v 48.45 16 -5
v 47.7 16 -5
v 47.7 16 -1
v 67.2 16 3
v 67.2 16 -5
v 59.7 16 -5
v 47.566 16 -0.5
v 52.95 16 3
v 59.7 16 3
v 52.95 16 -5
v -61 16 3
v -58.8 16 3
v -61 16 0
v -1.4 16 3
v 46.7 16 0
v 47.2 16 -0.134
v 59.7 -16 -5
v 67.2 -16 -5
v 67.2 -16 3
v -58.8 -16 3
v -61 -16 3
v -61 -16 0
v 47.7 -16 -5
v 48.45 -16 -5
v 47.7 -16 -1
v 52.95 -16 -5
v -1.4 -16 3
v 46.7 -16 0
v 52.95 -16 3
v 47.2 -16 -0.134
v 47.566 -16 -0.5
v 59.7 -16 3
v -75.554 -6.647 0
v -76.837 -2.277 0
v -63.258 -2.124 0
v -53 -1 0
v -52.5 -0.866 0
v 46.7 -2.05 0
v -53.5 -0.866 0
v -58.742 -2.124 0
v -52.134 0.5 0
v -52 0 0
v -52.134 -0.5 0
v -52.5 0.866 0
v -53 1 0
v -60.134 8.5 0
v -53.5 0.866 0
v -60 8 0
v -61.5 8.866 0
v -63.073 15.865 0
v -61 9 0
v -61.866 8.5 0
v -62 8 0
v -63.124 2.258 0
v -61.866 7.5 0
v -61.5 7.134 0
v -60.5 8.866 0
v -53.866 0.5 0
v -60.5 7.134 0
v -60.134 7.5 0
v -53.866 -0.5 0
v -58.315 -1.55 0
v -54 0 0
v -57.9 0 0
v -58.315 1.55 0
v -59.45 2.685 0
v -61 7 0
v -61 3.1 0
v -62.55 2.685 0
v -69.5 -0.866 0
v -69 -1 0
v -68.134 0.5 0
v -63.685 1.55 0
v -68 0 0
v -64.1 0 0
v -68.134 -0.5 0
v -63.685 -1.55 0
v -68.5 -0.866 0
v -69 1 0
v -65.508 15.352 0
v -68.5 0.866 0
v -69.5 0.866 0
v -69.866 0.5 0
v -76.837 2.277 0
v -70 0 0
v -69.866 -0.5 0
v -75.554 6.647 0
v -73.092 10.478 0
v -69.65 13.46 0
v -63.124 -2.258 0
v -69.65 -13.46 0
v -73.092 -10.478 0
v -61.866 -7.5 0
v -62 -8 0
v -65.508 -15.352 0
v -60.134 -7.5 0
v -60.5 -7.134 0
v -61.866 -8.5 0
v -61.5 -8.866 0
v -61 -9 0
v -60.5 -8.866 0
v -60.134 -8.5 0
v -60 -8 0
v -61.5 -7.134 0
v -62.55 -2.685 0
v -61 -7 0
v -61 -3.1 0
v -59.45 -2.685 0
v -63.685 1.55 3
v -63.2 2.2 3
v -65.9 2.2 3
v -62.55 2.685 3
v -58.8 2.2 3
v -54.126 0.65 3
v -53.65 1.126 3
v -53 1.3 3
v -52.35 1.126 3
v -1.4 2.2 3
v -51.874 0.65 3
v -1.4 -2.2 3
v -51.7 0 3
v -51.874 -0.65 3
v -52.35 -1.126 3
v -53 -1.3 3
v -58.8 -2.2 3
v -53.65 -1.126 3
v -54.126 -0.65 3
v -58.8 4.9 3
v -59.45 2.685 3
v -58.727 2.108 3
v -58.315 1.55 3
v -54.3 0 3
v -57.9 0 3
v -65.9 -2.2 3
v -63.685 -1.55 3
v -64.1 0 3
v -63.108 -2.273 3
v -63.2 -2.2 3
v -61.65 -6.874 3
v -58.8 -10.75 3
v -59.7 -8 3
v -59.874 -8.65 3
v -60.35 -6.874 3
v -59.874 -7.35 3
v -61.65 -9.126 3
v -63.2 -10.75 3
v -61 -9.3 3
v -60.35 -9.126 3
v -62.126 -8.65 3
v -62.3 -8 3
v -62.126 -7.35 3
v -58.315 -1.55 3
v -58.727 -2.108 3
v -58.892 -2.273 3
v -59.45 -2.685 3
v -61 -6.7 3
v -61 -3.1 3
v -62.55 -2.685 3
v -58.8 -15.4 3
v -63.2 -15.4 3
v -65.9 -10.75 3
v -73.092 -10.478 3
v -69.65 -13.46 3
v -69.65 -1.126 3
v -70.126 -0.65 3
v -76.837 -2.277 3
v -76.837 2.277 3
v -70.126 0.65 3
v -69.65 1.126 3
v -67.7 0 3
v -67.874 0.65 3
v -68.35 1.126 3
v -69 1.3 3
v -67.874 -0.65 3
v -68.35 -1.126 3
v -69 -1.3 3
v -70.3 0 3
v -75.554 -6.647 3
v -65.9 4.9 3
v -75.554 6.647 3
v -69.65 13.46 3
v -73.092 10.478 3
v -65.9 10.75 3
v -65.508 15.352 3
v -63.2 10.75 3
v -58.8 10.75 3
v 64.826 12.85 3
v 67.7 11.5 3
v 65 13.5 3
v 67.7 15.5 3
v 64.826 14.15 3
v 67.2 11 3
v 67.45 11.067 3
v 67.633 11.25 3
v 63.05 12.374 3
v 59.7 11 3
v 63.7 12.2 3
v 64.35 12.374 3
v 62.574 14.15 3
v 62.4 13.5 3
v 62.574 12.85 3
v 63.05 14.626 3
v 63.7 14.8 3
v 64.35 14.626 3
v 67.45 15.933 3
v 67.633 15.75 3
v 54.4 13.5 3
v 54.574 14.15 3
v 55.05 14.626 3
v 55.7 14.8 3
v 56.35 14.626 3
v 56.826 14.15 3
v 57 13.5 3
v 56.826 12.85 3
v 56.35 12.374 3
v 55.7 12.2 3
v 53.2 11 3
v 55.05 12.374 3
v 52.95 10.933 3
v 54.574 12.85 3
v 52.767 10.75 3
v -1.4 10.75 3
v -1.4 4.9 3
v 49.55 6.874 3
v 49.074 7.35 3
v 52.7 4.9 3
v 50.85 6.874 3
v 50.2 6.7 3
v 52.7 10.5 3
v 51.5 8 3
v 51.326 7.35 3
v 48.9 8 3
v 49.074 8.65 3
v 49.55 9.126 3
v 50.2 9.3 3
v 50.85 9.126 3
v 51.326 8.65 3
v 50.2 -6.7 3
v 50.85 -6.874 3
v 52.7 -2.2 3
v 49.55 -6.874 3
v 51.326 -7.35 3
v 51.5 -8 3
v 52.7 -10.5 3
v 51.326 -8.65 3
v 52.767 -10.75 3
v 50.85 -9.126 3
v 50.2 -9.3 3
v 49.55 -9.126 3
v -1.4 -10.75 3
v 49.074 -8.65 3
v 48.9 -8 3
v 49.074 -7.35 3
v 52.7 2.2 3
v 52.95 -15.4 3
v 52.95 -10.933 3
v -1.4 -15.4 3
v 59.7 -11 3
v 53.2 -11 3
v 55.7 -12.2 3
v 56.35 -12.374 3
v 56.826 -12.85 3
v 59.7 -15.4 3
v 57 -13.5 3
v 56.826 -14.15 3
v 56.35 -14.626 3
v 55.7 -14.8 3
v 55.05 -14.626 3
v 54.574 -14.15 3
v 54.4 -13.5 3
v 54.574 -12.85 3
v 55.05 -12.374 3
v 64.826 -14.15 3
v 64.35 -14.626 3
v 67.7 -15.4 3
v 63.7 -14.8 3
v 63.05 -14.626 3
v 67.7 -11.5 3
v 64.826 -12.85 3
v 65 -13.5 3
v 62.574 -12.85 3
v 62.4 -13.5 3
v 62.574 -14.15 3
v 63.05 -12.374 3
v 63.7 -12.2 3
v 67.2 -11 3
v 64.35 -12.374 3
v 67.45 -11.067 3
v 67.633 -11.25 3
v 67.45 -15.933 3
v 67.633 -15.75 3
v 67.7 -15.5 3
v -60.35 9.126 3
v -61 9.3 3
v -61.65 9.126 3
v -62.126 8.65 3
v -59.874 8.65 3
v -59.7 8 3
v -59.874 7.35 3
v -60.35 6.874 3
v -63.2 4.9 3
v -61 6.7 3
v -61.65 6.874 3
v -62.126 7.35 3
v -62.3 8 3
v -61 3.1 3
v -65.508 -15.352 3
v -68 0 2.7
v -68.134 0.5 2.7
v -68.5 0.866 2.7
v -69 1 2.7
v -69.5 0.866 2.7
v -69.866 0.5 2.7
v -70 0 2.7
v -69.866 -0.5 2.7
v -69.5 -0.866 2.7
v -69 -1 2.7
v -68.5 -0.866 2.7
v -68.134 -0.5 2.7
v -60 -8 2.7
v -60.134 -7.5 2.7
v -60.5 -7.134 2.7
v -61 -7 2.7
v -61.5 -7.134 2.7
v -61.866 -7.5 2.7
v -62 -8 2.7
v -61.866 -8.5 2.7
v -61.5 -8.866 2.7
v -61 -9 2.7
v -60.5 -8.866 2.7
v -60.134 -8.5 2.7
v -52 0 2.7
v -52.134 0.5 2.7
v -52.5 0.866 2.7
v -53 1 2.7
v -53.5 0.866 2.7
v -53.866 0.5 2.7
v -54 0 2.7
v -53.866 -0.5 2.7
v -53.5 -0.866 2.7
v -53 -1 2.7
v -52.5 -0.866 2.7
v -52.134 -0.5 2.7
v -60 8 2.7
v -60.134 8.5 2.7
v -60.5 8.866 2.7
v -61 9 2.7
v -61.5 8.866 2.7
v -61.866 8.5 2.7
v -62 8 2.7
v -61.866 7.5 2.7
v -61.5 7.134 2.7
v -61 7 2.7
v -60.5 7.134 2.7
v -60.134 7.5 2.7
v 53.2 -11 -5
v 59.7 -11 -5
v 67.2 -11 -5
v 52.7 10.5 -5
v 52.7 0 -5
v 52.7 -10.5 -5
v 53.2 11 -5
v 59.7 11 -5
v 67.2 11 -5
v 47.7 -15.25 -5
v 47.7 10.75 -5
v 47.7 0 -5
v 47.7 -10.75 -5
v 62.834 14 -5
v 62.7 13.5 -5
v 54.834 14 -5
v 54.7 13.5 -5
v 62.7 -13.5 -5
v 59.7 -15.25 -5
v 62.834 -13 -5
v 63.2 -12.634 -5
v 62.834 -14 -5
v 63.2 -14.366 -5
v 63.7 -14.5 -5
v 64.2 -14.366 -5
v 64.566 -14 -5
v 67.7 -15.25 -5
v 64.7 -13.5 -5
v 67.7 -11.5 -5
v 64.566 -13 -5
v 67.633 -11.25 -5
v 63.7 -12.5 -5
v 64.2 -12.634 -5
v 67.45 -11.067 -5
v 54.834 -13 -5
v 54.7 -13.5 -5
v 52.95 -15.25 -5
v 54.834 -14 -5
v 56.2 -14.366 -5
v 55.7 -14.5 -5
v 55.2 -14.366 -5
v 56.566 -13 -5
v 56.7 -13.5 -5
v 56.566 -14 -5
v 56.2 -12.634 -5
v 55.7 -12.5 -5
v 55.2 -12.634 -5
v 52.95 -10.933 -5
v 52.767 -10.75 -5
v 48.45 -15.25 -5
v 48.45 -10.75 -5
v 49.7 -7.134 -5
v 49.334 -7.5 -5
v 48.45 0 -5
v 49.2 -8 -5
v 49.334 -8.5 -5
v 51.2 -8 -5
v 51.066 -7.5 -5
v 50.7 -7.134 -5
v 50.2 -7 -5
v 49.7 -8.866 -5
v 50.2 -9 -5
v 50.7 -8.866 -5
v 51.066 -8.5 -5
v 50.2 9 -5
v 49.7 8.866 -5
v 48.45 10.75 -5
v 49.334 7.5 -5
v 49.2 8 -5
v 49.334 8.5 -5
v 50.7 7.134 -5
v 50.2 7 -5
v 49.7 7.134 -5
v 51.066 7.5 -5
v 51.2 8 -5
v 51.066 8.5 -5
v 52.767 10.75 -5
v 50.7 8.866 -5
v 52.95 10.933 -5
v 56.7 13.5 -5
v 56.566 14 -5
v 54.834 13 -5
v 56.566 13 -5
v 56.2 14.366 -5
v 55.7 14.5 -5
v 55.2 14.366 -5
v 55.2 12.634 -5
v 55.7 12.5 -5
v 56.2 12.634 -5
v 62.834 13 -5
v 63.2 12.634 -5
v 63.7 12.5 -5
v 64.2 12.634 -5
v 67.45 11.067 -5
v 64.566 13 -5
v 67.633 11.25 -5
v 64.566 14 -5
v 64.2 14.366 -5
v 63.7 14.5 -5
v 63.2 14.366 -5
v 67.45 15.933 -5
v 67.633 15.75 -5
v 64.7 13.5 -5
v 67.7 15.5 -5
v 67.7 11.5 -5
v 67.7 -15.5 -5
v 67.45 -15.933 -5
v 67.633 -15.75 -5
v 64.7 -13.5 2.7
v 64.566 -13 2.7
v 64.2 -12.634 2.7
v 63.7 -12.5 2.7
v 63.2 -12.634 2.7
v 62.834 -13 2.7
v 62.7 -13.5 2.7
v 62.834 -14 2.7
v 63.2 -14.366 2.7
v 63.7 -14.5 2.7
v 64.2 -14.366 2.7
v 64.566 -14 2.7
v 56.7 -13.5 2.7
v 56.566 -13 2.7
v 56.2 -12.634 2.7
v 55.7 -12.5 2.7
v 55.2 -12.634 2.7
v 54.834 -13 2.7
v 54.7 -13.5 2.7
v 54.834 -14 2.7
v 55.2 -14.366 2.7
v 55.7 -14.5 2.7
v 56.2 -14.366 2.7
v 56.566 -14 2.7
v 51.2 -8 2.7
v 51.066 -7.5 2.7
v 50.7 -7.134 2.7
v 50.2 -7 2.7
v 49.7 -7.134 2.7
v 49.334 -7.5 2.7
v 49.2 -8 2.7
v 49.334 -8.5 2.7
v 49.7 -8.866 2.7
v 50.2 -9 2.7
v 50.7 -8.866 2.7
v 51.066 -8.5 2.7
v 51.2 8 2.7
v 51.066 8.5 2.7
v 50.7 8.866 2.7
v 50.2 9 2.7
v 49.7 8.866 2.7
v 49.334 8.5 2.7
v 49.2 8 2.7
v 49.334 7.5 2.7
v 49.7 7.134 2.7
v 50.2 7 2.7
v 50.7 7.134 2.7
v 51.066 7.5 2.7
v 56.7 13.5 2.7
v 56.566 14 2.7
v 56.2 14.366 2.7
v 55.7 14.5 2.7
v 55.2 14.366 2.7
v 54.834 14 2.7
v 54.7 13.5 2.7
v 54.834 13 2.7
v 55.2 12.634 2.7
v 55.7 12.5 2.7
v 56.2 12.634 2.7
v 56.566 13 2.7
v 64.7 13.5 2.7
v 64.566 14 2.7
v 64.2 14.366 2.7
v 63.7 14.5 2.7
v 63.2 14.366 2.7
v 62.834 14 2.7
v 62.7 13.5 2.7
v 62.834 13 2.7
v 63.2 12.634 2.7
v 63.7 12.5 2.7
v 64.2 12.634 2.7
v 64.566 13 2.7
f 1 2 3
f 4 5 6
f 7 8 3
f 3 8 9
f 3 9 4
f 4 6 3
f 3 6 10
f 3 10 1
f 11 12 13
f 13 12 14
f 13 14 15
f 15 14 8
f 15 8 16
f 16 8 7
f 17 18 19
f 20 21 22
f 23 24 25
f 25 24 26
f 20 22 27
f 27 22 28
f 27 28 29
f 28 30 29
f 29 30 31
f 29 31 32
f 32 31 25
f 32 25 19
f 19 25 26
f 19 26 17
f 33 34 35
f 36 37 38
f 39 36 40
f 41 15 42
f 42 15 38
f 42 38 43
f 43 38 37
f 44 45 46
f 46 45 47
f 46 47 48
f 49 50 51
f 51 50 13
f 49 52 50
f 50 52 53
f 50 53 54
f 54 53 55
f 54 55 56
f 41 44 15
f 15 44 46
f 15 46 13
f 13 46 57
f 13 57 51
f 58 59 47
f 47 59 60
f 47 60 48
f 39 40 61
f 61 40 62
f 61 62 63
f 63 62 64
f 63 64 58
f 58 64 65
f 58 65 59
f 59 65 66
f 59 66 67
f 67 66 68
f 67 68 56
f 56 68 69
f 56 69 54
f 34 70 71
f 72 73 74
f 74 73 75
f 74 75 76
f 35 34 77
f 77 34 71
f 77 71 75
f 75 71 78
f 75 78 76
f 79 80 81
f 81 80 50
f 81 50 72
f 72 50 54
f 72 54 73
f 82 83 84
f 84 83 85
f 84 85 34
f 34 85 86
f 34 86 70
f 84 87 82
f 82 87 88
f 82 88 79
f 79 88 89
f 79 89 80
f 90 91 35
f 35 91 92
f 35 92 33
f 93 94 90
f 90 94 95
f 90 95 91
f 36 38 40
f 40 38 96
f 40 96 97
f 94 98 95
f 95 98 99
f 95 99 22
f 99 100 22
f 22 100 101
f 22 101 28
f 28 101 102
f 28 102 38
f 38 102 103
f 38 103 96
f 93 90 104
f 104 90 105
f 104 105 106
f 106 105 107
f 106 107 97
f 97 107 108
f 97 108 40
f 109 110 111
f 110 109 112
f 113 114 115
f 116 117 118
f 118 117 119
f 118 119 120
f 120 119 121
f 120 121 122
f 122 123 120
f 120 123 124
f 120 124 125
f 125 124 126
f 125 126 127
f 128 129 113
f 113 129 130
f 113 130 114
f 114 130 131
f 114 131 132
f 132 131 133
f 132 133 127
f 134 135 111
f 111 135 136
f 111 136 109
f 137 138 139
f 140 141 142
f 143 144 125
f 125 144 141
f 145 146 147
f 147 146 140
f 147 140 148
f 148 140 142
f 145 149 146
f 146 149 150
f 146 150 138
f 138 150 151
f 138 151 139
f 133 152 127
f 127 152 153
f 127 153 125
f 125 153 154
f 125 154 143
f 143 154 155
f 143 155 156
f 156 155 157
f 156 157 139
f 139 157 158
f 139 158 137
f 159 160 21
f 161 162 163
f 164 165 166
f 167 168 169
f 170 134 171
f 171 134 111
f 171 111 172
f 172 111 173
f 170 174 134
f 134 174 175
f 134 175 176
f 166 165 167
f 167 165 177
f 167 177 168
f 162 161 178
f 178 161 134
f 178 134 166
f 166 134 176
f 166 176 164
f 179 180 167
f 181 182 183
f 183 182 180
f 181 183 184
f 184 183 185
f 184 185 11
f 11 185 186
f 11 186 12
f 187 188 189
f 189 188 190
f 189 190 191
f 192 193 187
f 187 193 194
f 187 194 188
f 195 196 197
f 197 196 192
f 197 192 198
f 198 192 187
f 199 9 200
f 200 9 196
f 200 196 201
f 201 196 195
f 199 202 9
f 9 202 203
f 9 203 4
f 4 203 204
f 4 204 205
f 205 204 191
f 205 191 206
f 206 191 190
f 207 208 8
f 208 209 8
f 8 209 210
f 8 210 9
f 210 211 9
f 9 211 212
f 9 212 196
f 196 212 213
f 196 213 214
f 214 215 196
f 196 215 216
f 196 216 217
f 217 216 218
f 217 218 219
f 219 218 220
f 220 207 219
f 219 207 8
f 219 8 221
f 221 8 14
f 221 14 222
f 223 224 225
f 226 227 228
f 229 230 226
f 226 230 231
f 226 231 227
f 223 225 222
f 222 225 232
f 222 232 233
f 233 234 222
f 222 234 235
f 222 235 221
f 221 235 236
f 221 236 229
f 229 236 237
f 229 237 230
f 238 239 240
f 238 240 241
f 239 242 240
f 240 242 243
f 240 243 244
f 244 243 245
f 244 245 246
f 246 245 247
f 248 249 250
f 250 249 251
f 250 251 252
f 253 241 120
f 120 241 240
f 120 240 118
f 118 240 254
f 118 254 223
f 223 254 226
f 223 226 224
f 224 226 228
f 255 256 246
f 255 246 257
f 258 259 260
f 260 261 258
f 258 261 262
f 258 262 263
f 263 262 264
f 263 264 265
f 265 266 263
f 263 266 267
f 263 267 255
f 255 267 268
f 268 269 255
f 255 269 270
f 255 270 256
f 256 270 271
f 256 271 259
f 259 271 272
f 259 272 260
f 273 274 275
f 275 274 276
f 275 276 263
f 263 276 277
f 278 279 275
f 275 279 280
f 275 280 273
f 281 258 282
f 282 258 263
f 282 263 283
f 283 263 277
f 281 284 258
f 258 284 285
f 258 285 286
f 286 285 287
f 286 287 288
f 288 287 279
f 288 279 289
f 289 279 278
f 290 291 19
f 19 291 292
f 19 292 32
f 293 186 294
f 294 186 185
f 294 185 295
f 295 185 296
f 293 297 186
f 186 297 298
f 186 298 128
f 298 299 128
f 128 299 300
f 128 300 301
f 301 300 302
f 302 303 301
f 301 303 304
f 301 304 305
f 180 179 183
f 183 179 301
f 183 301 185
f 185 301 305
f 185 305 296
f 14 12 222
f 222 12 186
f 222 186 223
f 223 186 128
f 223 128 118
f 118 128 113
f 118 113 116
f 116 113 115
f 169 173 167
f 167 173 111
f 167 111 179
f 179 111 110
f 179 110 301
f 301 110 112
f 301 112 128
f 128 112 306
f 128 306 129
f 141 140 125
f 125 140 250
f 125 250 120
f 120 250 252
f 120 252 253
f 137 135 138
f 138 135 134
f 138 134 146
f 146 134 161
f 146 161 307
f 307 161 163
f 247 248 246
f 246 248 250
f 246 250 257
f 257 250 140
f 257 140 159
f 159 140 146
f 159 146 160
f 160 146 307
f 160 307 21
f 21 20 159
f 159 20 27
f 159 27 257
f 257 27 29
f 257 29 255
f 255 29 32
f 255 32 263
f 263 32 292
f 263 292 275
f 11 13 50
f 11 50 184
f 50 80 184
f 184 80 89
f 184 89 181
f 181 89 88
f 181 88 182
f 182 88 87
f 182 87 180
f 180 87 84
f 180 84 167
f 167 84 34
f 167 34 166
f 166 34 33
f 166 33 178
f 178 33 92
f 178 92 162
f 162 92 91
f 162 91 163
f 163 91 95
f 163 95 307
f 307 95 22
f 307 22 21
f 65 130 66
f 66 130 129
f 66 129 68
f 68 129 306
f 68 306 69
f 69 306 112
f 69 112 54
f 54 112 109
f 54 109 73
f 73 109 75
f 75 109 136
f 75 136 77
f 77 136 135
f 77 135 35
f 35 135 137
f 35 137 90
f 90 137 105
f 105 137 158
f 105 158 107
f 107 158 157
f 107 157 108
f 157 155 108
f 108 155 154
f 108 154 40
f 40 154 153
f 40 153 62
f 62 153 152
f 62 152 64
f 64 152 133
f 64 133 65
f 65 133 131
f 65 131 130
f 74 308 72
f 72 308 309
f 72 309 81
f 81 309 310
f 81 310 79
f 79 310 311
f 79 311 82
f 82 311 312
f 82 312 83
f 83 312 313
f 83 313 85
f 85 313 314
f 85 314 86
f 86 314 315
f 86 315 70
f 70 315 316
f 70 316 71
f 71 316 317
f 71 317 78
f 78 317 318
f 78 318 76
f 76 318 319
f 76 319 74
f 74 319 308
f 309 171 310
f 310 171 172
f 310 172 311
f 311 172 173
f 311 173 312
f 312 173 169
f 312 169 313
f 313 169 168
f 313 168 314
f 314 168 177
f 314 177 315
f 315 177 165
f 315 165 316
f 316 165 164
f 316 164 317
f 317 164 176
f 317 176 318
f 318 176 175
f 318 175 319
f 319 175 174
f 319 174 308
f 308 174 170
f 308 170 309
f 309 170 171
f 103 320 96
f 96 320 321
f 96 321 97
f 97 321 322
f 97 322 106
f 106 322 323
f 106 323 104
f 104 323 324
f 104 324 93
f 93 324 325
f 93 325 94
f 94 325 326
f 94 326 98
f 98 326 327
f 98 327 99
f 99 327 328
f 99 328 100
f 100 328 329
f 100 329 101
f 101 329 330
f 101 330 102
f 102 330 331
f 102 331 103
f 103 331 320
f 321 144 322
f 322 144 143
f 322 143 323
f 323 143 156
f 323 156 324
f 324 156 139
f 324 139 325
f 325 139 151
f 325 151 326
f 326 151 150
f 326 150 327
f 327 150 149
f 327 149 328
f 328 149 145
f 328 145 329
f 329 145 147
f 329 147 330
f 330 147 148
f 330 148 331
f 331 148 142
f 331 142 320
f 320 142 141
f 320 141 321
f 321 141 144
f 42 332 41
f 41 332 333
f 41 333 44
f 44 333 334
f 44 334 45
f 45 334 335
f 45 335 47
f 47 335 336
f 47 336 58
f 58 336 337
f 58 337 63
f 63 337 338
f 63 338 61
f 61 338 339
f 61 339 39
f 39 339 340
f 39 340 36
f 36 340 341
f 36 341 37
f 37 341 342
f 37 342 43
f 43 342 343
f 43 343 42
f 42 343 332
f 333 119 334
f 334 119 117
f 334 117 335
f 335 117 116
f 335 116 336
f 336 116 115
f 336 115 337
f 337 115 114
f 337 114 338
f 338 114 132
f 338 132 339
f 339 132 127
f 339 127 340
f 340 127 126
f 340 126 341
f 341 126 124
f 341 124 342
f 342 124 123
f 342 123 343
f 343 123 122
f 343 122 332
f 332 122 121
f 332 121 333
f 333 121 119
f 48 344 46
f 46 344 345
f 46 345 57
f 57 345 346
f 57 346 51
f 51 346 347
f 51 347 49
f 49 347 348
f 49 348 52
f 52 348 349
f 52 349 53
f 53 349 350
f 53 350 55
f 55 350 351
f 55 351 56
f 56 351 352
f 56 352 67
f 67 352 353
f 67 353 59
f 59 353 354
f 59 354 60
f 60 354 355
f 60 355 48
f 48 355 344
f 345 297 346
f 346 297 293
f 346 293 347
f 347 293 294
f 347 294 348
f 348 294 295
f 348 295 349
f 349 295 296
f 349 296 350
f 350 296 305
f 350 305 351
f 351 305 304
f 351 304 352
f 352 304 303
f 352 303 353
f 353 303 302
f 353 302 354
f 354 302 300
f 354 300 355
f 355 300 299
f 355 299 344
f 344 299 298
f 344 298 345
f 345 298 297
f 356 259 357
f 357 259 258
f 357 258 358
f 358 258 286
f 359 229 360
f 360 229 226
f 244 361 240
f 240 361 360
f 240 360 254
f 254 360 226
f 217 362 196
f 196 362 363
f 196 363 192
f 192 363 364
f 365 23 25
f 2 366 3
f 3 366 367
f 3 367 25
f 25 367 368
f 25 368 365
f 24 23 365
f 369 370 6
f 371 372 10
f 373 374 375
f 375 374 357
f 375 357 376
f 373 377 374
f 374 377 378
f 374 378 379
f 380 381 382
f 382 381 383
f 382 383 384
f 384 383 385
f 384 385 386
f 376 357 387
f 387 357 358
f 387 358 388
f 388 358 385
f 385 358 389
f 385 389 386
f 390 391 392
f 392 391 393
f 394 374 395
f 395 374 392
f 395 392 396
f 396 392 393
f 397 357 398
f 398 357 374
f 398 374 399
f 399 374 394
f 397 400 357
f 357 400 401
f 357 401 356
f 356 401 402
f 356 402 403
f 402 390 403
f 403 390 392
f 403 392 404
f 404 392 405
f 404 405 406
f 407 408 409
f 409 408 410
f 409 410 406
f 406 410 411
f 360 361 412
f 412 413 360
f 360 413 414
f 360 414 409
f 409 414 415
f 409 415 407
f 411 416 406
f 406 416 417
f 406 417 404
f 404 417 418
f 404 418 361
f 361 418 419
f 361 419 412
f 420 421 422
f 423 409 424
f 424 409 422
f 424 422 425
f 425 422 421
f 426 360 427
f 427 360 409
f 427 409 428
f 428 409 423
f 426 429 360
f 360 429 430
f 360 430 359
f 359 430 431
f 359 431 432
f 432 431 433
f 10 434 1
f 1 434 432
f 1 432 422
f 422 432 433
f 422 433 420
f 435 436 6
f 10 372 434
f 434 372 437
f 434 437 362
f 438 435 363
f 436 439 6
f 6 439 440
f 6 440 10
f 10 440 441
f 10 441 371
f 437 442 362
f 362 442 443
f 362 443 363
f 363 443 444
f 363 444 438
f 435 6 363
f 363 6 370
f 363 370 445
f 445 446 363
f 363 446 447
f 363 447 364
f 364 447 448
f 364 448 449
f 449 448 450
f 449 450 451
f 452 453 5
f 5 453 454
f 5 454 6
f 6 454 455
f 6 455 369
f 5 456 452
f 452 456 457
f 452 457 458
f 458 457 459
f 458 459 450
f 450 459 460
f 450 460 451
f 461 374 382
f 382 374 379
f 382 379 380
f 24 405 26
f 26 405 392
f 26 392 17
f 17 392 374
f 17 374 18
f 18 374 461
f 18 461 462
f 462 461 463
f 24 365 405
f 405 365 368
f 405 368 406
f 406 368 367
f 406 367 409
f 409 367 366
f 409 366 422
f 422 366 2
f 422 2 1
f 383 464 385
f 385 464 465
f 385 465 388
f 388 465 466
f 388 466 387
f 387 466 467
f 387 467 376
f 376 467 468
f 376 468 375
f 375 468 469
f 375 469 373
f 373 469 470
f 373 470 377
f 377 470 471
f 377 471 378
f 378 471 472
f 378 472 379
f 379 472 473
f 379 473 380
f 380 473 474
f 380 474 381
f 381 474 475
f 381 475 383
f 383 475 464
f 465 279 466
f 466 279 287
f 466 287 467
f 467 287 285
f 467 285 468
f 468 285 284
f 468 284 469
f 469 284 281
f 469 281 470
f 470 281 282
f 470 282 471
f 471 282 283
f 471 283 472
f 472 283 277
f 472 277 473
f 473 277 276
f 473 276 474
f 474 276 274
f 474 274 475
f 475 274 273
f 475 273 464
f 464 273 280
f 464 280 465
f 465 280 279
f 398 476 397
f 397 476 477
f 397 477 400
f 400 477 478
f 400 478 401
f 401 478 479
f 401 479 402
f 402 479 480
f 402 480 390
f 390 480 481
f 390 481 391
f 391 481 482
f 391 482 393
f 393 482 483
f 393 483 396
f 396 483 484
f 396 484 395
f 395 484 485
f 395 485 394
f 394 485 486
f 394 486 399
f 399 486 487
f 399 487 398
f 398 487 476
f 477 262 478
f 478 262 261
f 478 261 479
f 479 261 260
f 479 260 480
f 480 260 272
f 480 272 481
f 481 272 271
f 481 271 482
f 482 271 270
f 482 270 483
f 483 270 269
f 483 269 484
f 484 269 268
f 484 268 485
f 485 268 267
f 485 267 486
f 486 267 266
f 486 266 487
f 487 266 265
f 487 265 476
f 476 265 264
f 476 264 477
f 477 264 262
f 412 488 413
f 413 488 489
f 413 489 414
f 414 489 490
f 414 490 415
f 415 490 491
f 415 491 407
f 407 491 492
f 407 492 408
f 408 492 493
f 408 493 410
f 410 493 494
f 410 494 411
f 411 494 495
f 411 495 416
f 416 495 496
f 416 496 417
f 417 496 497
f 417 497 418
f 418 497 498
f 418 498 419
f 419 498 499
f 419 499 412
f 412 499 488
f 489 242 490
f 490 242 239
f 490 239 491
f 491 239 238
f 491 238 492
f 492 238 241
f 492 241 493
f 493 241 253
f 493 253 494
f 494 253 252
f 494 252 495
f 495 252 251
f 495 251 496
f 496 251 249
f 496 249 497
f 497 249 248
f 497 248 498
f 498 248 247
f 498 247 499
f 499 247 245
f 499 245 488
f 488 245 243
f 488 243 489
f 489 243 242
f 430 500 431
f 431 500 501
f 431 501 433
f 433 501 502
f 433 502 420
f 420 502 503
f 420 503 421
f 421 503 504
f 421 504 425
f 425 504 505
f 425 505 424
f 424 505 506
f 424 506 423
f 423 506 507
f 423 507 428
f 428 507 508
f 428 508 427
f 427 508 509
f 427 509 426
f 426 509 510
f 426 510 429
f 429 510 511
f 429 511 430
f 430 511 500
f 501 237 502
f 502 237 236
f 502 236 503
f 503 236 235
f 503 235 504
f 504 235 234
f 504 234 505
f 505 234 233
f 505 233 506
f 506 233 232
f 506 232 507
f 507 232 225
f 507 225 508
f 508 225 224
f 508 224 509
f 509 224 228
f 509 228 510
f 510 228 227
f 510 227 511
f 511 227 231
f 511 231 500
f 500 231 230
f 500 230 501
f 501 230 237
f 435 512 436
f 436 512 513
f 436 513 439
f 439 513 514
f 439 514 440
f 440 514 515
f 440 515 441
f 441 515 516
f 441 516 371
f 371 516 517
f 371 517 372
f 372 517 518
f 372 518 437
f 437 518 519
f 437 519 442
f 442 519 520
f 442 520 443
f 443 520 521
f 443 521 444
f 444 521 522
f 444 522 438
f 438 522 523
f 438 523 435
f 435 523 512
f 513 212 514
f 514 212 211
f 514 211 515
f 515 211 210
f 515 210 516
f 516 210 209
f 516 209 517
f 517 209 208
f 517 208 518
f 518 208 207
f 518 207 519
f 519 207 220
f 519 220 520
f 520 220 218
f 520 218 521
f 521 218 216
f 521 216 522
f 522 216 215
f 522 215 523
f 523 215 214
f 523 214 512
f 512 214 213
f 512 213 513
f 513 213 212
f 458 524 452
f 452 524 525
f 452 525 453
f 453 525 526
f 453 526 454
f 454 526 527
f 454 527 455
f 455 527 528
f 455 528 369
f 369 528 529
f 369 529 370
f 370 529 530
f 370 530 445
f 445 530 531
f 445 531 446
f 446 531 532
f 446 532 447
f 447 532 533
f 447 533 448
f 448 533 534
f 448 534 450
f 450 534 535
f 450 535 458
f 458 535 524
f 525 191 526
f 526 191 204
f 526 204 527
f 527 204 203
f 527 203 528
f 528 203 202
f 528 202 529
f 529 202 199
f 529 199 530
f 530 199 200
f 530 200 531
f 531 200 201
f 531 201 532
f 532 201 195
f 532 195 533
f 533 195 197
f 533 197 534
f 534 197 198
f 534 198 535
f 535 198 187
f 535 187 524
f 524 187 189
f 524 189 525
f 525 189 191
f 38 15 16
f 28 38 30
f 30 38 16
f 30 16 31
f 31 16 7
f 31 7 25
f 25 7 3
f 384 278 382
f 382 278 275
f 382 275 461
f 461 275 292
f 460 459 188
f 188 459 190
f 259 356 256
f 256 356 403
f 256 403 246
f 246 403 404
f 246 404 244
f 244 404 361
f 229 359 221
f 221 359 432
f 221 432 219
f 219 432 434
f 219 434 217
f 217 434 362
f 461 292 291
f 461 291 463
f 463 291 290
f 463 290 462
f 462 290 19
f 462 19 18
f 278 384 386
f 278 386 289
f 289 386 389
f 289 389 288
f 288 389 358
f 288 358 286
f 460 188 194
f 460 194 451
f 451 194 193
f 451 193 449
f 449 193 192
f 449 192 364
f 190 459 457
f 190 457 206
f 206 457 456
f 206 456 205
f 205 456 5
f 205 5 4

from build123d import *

# Parameters (mm, degrees)
Y_KSEKLIK_EKSTR_ZYON1_DEPTH                    = 3
IZIM2_R                                        = 3.1
KES_EKSTR_ZYON1_DEPTH                          = 79.70196948
M2_D_Z_BA_L_MAKINE_VIDAS_IN_HAV_A1_D           = 2
M2_D_Z_BA_L_MAKINE_VIDAS_IN_HAV_A1_CSINK_D     = 2.6
M2_D_Z_BA_L_MAKINE_VIDAS_IN_HAV_A1_CSINK_ANGLE = 90
IZIM26_W                                       = 22.3
IZIM26_H                                       = 22
KES_EKSTR_ZYON4_DEPTH                          = 79.70196948
Y_KSEKLIK_EKSTR_ZYON3_DEPTH                    = 8
M2_D_Z_BA_L_MAKINE_VIDAS_IN_HAV_A2_D           = 2
M2_D_Z_BA_L_MAKINE_VIDAS_IN_HAV_A2_CSINK_D     = 2.6
M2_D_Z_BA_L_MAKINE_VIDAS_IN_HAV_A2_CSINK_ANGLE = 90
RADYUS1_R                                      = 1
IZIM38_W                                       = 7.3
IZIM38_H                                       = 32
KES_EKSTR_ZYON5_DEPTH                          = 80.050616696
RADYUS2_R                                      = 0.5


with BuildPart() as part:
    # Çizim1 → Yükseklik-Ekstrüzyon1 (new body)
    with BuildSketch(Plane.XY):
        with BuildLine():
            ThreePointArc((-61, 16), (-77, 0), (-61, -16))
            Line((-61, -16), (75, -16))
            Line((75, -16), (75, 16))
            Line((75, 16), (-61, 16))
        make_face()
    extrude(amount=Y_KSEKLIK_EKSTR_ZYON1_DEPTH)

    # Çizim2 → Kes-Ekstrüzyon1 (cut, through all)
    with BuildSketch(Plane.XY.offset(3)):
        with Locations((-61, 0)):
            Circle(IZIM2_R)
    extrude(amount=-KES_EKSTR_ZYON1_DEPTH, mode=Mode.SUBTRACT)

    # M2 Düz Başlı Makine Vidası İçin Havşa1 (through all)
    with Locations(Plane(origin=(-61, 8, 3), x_dir=(1, 0, 0), z_dir=(0, 0, 1))):
        with Locations((0, 0), (8, -8), (0, -16), (-8, -8)):
            CounterSinkHole(M2_D_Z_BA_L_MAKINE_VIDAS_IN_HAV_A1_D / 2, M2_D_Z_BA_L_MAKINE_VIDAS_IN_HAV_A1_CSINK_D / 2, counter_sink_angle=M2_D_Z_BA_L_MAKINE_VIDAS_IN_HAV_A1_CSINK_ANGLE)

    # Çizim26 → Kes-Ekstrüzyon4 (cut, through all)
    with BuildSketch(Plane.XY.offset(3)):
        with Locations((63.85, 0)):
            Rectangle(IZIM26_W, IZIM26_H)
    extrude(amount=-KES_EKSTR_ZYON4_DEPTH, mode=Mode.SUBTRACT)

    # Çizim33 → Yükseklik-Ekstrüzyon3 (add)
    with BuildSketch(Plane.XY.offset(3)):
        Polygon((75, 11), (75, 16), (47.7, 16), (47.7, -16), (75, -16), (75, -11), (52.7, -11), (52.7, 11), align=None)
    extrude(amount=-Y_KSEKLIK_EKSTR_ZYON3_DEPTH)

    # M2 Düz Başlı Makine Vidası İçin Havşa2 (through all)
    with Locations(Plane(origin=(71.7, 13.5, 3), x_dir=(1, 0, 0), z_dir=(0, 0, 1))):
        with Locations((0, 0), (-8, 0), (-16, 0), (-21.5, -5.5), (-21.5, -21.5), (-16, -27), (-8, -27), (0, -27)):
            CounterSinkHole(M2_D_Z_BA_L_MAKINE_VIDAS_IN_HAV_A2_D / 2, M2_D_Z_BA_L_MAKINE_VIDAS_IN_HAV_A2_CSINK_D / 2, counter_sink_angle=M2_D_Z_BA_L_MAKINE_VIDAS_IN_HAV_A2_CSINK_ANGLE)

    # Radyus1
    radyus1_edges = [part.edges().sort_by_distance(p)[0] for p in [
        (47.7, 0, 0),
    ]]
    fillet(radyus1_edges, radius=RADYUS1_R)

    # Çizim38 → Kes-Ekstrüzyon5 (cut, through all)
    with BuildSketch(Plane.XY.offset(3)):
        with Locations((71.35, 0)):
            Rectangle(IZIM38_W, IZIM38_H)
    extrude(amount=-KES_EKSTR_ZYON5_DEPTH, mode=Mode.SUBTRACT)

    # Radyus2
    radyus2_edges = [part.edges().sort_by_distance(p)[0] for p in [
        (67.7, -11, -1),
        (67.7, -16, -1),
        (67.7, 11, -1),
        (67.7, 16, -1),
        (52.7, -11, -1),
        (52.7, 11, -1),
    ]]
    fillet(radyus2_edges, radius=RADYUS2_R)


solid = part.part
